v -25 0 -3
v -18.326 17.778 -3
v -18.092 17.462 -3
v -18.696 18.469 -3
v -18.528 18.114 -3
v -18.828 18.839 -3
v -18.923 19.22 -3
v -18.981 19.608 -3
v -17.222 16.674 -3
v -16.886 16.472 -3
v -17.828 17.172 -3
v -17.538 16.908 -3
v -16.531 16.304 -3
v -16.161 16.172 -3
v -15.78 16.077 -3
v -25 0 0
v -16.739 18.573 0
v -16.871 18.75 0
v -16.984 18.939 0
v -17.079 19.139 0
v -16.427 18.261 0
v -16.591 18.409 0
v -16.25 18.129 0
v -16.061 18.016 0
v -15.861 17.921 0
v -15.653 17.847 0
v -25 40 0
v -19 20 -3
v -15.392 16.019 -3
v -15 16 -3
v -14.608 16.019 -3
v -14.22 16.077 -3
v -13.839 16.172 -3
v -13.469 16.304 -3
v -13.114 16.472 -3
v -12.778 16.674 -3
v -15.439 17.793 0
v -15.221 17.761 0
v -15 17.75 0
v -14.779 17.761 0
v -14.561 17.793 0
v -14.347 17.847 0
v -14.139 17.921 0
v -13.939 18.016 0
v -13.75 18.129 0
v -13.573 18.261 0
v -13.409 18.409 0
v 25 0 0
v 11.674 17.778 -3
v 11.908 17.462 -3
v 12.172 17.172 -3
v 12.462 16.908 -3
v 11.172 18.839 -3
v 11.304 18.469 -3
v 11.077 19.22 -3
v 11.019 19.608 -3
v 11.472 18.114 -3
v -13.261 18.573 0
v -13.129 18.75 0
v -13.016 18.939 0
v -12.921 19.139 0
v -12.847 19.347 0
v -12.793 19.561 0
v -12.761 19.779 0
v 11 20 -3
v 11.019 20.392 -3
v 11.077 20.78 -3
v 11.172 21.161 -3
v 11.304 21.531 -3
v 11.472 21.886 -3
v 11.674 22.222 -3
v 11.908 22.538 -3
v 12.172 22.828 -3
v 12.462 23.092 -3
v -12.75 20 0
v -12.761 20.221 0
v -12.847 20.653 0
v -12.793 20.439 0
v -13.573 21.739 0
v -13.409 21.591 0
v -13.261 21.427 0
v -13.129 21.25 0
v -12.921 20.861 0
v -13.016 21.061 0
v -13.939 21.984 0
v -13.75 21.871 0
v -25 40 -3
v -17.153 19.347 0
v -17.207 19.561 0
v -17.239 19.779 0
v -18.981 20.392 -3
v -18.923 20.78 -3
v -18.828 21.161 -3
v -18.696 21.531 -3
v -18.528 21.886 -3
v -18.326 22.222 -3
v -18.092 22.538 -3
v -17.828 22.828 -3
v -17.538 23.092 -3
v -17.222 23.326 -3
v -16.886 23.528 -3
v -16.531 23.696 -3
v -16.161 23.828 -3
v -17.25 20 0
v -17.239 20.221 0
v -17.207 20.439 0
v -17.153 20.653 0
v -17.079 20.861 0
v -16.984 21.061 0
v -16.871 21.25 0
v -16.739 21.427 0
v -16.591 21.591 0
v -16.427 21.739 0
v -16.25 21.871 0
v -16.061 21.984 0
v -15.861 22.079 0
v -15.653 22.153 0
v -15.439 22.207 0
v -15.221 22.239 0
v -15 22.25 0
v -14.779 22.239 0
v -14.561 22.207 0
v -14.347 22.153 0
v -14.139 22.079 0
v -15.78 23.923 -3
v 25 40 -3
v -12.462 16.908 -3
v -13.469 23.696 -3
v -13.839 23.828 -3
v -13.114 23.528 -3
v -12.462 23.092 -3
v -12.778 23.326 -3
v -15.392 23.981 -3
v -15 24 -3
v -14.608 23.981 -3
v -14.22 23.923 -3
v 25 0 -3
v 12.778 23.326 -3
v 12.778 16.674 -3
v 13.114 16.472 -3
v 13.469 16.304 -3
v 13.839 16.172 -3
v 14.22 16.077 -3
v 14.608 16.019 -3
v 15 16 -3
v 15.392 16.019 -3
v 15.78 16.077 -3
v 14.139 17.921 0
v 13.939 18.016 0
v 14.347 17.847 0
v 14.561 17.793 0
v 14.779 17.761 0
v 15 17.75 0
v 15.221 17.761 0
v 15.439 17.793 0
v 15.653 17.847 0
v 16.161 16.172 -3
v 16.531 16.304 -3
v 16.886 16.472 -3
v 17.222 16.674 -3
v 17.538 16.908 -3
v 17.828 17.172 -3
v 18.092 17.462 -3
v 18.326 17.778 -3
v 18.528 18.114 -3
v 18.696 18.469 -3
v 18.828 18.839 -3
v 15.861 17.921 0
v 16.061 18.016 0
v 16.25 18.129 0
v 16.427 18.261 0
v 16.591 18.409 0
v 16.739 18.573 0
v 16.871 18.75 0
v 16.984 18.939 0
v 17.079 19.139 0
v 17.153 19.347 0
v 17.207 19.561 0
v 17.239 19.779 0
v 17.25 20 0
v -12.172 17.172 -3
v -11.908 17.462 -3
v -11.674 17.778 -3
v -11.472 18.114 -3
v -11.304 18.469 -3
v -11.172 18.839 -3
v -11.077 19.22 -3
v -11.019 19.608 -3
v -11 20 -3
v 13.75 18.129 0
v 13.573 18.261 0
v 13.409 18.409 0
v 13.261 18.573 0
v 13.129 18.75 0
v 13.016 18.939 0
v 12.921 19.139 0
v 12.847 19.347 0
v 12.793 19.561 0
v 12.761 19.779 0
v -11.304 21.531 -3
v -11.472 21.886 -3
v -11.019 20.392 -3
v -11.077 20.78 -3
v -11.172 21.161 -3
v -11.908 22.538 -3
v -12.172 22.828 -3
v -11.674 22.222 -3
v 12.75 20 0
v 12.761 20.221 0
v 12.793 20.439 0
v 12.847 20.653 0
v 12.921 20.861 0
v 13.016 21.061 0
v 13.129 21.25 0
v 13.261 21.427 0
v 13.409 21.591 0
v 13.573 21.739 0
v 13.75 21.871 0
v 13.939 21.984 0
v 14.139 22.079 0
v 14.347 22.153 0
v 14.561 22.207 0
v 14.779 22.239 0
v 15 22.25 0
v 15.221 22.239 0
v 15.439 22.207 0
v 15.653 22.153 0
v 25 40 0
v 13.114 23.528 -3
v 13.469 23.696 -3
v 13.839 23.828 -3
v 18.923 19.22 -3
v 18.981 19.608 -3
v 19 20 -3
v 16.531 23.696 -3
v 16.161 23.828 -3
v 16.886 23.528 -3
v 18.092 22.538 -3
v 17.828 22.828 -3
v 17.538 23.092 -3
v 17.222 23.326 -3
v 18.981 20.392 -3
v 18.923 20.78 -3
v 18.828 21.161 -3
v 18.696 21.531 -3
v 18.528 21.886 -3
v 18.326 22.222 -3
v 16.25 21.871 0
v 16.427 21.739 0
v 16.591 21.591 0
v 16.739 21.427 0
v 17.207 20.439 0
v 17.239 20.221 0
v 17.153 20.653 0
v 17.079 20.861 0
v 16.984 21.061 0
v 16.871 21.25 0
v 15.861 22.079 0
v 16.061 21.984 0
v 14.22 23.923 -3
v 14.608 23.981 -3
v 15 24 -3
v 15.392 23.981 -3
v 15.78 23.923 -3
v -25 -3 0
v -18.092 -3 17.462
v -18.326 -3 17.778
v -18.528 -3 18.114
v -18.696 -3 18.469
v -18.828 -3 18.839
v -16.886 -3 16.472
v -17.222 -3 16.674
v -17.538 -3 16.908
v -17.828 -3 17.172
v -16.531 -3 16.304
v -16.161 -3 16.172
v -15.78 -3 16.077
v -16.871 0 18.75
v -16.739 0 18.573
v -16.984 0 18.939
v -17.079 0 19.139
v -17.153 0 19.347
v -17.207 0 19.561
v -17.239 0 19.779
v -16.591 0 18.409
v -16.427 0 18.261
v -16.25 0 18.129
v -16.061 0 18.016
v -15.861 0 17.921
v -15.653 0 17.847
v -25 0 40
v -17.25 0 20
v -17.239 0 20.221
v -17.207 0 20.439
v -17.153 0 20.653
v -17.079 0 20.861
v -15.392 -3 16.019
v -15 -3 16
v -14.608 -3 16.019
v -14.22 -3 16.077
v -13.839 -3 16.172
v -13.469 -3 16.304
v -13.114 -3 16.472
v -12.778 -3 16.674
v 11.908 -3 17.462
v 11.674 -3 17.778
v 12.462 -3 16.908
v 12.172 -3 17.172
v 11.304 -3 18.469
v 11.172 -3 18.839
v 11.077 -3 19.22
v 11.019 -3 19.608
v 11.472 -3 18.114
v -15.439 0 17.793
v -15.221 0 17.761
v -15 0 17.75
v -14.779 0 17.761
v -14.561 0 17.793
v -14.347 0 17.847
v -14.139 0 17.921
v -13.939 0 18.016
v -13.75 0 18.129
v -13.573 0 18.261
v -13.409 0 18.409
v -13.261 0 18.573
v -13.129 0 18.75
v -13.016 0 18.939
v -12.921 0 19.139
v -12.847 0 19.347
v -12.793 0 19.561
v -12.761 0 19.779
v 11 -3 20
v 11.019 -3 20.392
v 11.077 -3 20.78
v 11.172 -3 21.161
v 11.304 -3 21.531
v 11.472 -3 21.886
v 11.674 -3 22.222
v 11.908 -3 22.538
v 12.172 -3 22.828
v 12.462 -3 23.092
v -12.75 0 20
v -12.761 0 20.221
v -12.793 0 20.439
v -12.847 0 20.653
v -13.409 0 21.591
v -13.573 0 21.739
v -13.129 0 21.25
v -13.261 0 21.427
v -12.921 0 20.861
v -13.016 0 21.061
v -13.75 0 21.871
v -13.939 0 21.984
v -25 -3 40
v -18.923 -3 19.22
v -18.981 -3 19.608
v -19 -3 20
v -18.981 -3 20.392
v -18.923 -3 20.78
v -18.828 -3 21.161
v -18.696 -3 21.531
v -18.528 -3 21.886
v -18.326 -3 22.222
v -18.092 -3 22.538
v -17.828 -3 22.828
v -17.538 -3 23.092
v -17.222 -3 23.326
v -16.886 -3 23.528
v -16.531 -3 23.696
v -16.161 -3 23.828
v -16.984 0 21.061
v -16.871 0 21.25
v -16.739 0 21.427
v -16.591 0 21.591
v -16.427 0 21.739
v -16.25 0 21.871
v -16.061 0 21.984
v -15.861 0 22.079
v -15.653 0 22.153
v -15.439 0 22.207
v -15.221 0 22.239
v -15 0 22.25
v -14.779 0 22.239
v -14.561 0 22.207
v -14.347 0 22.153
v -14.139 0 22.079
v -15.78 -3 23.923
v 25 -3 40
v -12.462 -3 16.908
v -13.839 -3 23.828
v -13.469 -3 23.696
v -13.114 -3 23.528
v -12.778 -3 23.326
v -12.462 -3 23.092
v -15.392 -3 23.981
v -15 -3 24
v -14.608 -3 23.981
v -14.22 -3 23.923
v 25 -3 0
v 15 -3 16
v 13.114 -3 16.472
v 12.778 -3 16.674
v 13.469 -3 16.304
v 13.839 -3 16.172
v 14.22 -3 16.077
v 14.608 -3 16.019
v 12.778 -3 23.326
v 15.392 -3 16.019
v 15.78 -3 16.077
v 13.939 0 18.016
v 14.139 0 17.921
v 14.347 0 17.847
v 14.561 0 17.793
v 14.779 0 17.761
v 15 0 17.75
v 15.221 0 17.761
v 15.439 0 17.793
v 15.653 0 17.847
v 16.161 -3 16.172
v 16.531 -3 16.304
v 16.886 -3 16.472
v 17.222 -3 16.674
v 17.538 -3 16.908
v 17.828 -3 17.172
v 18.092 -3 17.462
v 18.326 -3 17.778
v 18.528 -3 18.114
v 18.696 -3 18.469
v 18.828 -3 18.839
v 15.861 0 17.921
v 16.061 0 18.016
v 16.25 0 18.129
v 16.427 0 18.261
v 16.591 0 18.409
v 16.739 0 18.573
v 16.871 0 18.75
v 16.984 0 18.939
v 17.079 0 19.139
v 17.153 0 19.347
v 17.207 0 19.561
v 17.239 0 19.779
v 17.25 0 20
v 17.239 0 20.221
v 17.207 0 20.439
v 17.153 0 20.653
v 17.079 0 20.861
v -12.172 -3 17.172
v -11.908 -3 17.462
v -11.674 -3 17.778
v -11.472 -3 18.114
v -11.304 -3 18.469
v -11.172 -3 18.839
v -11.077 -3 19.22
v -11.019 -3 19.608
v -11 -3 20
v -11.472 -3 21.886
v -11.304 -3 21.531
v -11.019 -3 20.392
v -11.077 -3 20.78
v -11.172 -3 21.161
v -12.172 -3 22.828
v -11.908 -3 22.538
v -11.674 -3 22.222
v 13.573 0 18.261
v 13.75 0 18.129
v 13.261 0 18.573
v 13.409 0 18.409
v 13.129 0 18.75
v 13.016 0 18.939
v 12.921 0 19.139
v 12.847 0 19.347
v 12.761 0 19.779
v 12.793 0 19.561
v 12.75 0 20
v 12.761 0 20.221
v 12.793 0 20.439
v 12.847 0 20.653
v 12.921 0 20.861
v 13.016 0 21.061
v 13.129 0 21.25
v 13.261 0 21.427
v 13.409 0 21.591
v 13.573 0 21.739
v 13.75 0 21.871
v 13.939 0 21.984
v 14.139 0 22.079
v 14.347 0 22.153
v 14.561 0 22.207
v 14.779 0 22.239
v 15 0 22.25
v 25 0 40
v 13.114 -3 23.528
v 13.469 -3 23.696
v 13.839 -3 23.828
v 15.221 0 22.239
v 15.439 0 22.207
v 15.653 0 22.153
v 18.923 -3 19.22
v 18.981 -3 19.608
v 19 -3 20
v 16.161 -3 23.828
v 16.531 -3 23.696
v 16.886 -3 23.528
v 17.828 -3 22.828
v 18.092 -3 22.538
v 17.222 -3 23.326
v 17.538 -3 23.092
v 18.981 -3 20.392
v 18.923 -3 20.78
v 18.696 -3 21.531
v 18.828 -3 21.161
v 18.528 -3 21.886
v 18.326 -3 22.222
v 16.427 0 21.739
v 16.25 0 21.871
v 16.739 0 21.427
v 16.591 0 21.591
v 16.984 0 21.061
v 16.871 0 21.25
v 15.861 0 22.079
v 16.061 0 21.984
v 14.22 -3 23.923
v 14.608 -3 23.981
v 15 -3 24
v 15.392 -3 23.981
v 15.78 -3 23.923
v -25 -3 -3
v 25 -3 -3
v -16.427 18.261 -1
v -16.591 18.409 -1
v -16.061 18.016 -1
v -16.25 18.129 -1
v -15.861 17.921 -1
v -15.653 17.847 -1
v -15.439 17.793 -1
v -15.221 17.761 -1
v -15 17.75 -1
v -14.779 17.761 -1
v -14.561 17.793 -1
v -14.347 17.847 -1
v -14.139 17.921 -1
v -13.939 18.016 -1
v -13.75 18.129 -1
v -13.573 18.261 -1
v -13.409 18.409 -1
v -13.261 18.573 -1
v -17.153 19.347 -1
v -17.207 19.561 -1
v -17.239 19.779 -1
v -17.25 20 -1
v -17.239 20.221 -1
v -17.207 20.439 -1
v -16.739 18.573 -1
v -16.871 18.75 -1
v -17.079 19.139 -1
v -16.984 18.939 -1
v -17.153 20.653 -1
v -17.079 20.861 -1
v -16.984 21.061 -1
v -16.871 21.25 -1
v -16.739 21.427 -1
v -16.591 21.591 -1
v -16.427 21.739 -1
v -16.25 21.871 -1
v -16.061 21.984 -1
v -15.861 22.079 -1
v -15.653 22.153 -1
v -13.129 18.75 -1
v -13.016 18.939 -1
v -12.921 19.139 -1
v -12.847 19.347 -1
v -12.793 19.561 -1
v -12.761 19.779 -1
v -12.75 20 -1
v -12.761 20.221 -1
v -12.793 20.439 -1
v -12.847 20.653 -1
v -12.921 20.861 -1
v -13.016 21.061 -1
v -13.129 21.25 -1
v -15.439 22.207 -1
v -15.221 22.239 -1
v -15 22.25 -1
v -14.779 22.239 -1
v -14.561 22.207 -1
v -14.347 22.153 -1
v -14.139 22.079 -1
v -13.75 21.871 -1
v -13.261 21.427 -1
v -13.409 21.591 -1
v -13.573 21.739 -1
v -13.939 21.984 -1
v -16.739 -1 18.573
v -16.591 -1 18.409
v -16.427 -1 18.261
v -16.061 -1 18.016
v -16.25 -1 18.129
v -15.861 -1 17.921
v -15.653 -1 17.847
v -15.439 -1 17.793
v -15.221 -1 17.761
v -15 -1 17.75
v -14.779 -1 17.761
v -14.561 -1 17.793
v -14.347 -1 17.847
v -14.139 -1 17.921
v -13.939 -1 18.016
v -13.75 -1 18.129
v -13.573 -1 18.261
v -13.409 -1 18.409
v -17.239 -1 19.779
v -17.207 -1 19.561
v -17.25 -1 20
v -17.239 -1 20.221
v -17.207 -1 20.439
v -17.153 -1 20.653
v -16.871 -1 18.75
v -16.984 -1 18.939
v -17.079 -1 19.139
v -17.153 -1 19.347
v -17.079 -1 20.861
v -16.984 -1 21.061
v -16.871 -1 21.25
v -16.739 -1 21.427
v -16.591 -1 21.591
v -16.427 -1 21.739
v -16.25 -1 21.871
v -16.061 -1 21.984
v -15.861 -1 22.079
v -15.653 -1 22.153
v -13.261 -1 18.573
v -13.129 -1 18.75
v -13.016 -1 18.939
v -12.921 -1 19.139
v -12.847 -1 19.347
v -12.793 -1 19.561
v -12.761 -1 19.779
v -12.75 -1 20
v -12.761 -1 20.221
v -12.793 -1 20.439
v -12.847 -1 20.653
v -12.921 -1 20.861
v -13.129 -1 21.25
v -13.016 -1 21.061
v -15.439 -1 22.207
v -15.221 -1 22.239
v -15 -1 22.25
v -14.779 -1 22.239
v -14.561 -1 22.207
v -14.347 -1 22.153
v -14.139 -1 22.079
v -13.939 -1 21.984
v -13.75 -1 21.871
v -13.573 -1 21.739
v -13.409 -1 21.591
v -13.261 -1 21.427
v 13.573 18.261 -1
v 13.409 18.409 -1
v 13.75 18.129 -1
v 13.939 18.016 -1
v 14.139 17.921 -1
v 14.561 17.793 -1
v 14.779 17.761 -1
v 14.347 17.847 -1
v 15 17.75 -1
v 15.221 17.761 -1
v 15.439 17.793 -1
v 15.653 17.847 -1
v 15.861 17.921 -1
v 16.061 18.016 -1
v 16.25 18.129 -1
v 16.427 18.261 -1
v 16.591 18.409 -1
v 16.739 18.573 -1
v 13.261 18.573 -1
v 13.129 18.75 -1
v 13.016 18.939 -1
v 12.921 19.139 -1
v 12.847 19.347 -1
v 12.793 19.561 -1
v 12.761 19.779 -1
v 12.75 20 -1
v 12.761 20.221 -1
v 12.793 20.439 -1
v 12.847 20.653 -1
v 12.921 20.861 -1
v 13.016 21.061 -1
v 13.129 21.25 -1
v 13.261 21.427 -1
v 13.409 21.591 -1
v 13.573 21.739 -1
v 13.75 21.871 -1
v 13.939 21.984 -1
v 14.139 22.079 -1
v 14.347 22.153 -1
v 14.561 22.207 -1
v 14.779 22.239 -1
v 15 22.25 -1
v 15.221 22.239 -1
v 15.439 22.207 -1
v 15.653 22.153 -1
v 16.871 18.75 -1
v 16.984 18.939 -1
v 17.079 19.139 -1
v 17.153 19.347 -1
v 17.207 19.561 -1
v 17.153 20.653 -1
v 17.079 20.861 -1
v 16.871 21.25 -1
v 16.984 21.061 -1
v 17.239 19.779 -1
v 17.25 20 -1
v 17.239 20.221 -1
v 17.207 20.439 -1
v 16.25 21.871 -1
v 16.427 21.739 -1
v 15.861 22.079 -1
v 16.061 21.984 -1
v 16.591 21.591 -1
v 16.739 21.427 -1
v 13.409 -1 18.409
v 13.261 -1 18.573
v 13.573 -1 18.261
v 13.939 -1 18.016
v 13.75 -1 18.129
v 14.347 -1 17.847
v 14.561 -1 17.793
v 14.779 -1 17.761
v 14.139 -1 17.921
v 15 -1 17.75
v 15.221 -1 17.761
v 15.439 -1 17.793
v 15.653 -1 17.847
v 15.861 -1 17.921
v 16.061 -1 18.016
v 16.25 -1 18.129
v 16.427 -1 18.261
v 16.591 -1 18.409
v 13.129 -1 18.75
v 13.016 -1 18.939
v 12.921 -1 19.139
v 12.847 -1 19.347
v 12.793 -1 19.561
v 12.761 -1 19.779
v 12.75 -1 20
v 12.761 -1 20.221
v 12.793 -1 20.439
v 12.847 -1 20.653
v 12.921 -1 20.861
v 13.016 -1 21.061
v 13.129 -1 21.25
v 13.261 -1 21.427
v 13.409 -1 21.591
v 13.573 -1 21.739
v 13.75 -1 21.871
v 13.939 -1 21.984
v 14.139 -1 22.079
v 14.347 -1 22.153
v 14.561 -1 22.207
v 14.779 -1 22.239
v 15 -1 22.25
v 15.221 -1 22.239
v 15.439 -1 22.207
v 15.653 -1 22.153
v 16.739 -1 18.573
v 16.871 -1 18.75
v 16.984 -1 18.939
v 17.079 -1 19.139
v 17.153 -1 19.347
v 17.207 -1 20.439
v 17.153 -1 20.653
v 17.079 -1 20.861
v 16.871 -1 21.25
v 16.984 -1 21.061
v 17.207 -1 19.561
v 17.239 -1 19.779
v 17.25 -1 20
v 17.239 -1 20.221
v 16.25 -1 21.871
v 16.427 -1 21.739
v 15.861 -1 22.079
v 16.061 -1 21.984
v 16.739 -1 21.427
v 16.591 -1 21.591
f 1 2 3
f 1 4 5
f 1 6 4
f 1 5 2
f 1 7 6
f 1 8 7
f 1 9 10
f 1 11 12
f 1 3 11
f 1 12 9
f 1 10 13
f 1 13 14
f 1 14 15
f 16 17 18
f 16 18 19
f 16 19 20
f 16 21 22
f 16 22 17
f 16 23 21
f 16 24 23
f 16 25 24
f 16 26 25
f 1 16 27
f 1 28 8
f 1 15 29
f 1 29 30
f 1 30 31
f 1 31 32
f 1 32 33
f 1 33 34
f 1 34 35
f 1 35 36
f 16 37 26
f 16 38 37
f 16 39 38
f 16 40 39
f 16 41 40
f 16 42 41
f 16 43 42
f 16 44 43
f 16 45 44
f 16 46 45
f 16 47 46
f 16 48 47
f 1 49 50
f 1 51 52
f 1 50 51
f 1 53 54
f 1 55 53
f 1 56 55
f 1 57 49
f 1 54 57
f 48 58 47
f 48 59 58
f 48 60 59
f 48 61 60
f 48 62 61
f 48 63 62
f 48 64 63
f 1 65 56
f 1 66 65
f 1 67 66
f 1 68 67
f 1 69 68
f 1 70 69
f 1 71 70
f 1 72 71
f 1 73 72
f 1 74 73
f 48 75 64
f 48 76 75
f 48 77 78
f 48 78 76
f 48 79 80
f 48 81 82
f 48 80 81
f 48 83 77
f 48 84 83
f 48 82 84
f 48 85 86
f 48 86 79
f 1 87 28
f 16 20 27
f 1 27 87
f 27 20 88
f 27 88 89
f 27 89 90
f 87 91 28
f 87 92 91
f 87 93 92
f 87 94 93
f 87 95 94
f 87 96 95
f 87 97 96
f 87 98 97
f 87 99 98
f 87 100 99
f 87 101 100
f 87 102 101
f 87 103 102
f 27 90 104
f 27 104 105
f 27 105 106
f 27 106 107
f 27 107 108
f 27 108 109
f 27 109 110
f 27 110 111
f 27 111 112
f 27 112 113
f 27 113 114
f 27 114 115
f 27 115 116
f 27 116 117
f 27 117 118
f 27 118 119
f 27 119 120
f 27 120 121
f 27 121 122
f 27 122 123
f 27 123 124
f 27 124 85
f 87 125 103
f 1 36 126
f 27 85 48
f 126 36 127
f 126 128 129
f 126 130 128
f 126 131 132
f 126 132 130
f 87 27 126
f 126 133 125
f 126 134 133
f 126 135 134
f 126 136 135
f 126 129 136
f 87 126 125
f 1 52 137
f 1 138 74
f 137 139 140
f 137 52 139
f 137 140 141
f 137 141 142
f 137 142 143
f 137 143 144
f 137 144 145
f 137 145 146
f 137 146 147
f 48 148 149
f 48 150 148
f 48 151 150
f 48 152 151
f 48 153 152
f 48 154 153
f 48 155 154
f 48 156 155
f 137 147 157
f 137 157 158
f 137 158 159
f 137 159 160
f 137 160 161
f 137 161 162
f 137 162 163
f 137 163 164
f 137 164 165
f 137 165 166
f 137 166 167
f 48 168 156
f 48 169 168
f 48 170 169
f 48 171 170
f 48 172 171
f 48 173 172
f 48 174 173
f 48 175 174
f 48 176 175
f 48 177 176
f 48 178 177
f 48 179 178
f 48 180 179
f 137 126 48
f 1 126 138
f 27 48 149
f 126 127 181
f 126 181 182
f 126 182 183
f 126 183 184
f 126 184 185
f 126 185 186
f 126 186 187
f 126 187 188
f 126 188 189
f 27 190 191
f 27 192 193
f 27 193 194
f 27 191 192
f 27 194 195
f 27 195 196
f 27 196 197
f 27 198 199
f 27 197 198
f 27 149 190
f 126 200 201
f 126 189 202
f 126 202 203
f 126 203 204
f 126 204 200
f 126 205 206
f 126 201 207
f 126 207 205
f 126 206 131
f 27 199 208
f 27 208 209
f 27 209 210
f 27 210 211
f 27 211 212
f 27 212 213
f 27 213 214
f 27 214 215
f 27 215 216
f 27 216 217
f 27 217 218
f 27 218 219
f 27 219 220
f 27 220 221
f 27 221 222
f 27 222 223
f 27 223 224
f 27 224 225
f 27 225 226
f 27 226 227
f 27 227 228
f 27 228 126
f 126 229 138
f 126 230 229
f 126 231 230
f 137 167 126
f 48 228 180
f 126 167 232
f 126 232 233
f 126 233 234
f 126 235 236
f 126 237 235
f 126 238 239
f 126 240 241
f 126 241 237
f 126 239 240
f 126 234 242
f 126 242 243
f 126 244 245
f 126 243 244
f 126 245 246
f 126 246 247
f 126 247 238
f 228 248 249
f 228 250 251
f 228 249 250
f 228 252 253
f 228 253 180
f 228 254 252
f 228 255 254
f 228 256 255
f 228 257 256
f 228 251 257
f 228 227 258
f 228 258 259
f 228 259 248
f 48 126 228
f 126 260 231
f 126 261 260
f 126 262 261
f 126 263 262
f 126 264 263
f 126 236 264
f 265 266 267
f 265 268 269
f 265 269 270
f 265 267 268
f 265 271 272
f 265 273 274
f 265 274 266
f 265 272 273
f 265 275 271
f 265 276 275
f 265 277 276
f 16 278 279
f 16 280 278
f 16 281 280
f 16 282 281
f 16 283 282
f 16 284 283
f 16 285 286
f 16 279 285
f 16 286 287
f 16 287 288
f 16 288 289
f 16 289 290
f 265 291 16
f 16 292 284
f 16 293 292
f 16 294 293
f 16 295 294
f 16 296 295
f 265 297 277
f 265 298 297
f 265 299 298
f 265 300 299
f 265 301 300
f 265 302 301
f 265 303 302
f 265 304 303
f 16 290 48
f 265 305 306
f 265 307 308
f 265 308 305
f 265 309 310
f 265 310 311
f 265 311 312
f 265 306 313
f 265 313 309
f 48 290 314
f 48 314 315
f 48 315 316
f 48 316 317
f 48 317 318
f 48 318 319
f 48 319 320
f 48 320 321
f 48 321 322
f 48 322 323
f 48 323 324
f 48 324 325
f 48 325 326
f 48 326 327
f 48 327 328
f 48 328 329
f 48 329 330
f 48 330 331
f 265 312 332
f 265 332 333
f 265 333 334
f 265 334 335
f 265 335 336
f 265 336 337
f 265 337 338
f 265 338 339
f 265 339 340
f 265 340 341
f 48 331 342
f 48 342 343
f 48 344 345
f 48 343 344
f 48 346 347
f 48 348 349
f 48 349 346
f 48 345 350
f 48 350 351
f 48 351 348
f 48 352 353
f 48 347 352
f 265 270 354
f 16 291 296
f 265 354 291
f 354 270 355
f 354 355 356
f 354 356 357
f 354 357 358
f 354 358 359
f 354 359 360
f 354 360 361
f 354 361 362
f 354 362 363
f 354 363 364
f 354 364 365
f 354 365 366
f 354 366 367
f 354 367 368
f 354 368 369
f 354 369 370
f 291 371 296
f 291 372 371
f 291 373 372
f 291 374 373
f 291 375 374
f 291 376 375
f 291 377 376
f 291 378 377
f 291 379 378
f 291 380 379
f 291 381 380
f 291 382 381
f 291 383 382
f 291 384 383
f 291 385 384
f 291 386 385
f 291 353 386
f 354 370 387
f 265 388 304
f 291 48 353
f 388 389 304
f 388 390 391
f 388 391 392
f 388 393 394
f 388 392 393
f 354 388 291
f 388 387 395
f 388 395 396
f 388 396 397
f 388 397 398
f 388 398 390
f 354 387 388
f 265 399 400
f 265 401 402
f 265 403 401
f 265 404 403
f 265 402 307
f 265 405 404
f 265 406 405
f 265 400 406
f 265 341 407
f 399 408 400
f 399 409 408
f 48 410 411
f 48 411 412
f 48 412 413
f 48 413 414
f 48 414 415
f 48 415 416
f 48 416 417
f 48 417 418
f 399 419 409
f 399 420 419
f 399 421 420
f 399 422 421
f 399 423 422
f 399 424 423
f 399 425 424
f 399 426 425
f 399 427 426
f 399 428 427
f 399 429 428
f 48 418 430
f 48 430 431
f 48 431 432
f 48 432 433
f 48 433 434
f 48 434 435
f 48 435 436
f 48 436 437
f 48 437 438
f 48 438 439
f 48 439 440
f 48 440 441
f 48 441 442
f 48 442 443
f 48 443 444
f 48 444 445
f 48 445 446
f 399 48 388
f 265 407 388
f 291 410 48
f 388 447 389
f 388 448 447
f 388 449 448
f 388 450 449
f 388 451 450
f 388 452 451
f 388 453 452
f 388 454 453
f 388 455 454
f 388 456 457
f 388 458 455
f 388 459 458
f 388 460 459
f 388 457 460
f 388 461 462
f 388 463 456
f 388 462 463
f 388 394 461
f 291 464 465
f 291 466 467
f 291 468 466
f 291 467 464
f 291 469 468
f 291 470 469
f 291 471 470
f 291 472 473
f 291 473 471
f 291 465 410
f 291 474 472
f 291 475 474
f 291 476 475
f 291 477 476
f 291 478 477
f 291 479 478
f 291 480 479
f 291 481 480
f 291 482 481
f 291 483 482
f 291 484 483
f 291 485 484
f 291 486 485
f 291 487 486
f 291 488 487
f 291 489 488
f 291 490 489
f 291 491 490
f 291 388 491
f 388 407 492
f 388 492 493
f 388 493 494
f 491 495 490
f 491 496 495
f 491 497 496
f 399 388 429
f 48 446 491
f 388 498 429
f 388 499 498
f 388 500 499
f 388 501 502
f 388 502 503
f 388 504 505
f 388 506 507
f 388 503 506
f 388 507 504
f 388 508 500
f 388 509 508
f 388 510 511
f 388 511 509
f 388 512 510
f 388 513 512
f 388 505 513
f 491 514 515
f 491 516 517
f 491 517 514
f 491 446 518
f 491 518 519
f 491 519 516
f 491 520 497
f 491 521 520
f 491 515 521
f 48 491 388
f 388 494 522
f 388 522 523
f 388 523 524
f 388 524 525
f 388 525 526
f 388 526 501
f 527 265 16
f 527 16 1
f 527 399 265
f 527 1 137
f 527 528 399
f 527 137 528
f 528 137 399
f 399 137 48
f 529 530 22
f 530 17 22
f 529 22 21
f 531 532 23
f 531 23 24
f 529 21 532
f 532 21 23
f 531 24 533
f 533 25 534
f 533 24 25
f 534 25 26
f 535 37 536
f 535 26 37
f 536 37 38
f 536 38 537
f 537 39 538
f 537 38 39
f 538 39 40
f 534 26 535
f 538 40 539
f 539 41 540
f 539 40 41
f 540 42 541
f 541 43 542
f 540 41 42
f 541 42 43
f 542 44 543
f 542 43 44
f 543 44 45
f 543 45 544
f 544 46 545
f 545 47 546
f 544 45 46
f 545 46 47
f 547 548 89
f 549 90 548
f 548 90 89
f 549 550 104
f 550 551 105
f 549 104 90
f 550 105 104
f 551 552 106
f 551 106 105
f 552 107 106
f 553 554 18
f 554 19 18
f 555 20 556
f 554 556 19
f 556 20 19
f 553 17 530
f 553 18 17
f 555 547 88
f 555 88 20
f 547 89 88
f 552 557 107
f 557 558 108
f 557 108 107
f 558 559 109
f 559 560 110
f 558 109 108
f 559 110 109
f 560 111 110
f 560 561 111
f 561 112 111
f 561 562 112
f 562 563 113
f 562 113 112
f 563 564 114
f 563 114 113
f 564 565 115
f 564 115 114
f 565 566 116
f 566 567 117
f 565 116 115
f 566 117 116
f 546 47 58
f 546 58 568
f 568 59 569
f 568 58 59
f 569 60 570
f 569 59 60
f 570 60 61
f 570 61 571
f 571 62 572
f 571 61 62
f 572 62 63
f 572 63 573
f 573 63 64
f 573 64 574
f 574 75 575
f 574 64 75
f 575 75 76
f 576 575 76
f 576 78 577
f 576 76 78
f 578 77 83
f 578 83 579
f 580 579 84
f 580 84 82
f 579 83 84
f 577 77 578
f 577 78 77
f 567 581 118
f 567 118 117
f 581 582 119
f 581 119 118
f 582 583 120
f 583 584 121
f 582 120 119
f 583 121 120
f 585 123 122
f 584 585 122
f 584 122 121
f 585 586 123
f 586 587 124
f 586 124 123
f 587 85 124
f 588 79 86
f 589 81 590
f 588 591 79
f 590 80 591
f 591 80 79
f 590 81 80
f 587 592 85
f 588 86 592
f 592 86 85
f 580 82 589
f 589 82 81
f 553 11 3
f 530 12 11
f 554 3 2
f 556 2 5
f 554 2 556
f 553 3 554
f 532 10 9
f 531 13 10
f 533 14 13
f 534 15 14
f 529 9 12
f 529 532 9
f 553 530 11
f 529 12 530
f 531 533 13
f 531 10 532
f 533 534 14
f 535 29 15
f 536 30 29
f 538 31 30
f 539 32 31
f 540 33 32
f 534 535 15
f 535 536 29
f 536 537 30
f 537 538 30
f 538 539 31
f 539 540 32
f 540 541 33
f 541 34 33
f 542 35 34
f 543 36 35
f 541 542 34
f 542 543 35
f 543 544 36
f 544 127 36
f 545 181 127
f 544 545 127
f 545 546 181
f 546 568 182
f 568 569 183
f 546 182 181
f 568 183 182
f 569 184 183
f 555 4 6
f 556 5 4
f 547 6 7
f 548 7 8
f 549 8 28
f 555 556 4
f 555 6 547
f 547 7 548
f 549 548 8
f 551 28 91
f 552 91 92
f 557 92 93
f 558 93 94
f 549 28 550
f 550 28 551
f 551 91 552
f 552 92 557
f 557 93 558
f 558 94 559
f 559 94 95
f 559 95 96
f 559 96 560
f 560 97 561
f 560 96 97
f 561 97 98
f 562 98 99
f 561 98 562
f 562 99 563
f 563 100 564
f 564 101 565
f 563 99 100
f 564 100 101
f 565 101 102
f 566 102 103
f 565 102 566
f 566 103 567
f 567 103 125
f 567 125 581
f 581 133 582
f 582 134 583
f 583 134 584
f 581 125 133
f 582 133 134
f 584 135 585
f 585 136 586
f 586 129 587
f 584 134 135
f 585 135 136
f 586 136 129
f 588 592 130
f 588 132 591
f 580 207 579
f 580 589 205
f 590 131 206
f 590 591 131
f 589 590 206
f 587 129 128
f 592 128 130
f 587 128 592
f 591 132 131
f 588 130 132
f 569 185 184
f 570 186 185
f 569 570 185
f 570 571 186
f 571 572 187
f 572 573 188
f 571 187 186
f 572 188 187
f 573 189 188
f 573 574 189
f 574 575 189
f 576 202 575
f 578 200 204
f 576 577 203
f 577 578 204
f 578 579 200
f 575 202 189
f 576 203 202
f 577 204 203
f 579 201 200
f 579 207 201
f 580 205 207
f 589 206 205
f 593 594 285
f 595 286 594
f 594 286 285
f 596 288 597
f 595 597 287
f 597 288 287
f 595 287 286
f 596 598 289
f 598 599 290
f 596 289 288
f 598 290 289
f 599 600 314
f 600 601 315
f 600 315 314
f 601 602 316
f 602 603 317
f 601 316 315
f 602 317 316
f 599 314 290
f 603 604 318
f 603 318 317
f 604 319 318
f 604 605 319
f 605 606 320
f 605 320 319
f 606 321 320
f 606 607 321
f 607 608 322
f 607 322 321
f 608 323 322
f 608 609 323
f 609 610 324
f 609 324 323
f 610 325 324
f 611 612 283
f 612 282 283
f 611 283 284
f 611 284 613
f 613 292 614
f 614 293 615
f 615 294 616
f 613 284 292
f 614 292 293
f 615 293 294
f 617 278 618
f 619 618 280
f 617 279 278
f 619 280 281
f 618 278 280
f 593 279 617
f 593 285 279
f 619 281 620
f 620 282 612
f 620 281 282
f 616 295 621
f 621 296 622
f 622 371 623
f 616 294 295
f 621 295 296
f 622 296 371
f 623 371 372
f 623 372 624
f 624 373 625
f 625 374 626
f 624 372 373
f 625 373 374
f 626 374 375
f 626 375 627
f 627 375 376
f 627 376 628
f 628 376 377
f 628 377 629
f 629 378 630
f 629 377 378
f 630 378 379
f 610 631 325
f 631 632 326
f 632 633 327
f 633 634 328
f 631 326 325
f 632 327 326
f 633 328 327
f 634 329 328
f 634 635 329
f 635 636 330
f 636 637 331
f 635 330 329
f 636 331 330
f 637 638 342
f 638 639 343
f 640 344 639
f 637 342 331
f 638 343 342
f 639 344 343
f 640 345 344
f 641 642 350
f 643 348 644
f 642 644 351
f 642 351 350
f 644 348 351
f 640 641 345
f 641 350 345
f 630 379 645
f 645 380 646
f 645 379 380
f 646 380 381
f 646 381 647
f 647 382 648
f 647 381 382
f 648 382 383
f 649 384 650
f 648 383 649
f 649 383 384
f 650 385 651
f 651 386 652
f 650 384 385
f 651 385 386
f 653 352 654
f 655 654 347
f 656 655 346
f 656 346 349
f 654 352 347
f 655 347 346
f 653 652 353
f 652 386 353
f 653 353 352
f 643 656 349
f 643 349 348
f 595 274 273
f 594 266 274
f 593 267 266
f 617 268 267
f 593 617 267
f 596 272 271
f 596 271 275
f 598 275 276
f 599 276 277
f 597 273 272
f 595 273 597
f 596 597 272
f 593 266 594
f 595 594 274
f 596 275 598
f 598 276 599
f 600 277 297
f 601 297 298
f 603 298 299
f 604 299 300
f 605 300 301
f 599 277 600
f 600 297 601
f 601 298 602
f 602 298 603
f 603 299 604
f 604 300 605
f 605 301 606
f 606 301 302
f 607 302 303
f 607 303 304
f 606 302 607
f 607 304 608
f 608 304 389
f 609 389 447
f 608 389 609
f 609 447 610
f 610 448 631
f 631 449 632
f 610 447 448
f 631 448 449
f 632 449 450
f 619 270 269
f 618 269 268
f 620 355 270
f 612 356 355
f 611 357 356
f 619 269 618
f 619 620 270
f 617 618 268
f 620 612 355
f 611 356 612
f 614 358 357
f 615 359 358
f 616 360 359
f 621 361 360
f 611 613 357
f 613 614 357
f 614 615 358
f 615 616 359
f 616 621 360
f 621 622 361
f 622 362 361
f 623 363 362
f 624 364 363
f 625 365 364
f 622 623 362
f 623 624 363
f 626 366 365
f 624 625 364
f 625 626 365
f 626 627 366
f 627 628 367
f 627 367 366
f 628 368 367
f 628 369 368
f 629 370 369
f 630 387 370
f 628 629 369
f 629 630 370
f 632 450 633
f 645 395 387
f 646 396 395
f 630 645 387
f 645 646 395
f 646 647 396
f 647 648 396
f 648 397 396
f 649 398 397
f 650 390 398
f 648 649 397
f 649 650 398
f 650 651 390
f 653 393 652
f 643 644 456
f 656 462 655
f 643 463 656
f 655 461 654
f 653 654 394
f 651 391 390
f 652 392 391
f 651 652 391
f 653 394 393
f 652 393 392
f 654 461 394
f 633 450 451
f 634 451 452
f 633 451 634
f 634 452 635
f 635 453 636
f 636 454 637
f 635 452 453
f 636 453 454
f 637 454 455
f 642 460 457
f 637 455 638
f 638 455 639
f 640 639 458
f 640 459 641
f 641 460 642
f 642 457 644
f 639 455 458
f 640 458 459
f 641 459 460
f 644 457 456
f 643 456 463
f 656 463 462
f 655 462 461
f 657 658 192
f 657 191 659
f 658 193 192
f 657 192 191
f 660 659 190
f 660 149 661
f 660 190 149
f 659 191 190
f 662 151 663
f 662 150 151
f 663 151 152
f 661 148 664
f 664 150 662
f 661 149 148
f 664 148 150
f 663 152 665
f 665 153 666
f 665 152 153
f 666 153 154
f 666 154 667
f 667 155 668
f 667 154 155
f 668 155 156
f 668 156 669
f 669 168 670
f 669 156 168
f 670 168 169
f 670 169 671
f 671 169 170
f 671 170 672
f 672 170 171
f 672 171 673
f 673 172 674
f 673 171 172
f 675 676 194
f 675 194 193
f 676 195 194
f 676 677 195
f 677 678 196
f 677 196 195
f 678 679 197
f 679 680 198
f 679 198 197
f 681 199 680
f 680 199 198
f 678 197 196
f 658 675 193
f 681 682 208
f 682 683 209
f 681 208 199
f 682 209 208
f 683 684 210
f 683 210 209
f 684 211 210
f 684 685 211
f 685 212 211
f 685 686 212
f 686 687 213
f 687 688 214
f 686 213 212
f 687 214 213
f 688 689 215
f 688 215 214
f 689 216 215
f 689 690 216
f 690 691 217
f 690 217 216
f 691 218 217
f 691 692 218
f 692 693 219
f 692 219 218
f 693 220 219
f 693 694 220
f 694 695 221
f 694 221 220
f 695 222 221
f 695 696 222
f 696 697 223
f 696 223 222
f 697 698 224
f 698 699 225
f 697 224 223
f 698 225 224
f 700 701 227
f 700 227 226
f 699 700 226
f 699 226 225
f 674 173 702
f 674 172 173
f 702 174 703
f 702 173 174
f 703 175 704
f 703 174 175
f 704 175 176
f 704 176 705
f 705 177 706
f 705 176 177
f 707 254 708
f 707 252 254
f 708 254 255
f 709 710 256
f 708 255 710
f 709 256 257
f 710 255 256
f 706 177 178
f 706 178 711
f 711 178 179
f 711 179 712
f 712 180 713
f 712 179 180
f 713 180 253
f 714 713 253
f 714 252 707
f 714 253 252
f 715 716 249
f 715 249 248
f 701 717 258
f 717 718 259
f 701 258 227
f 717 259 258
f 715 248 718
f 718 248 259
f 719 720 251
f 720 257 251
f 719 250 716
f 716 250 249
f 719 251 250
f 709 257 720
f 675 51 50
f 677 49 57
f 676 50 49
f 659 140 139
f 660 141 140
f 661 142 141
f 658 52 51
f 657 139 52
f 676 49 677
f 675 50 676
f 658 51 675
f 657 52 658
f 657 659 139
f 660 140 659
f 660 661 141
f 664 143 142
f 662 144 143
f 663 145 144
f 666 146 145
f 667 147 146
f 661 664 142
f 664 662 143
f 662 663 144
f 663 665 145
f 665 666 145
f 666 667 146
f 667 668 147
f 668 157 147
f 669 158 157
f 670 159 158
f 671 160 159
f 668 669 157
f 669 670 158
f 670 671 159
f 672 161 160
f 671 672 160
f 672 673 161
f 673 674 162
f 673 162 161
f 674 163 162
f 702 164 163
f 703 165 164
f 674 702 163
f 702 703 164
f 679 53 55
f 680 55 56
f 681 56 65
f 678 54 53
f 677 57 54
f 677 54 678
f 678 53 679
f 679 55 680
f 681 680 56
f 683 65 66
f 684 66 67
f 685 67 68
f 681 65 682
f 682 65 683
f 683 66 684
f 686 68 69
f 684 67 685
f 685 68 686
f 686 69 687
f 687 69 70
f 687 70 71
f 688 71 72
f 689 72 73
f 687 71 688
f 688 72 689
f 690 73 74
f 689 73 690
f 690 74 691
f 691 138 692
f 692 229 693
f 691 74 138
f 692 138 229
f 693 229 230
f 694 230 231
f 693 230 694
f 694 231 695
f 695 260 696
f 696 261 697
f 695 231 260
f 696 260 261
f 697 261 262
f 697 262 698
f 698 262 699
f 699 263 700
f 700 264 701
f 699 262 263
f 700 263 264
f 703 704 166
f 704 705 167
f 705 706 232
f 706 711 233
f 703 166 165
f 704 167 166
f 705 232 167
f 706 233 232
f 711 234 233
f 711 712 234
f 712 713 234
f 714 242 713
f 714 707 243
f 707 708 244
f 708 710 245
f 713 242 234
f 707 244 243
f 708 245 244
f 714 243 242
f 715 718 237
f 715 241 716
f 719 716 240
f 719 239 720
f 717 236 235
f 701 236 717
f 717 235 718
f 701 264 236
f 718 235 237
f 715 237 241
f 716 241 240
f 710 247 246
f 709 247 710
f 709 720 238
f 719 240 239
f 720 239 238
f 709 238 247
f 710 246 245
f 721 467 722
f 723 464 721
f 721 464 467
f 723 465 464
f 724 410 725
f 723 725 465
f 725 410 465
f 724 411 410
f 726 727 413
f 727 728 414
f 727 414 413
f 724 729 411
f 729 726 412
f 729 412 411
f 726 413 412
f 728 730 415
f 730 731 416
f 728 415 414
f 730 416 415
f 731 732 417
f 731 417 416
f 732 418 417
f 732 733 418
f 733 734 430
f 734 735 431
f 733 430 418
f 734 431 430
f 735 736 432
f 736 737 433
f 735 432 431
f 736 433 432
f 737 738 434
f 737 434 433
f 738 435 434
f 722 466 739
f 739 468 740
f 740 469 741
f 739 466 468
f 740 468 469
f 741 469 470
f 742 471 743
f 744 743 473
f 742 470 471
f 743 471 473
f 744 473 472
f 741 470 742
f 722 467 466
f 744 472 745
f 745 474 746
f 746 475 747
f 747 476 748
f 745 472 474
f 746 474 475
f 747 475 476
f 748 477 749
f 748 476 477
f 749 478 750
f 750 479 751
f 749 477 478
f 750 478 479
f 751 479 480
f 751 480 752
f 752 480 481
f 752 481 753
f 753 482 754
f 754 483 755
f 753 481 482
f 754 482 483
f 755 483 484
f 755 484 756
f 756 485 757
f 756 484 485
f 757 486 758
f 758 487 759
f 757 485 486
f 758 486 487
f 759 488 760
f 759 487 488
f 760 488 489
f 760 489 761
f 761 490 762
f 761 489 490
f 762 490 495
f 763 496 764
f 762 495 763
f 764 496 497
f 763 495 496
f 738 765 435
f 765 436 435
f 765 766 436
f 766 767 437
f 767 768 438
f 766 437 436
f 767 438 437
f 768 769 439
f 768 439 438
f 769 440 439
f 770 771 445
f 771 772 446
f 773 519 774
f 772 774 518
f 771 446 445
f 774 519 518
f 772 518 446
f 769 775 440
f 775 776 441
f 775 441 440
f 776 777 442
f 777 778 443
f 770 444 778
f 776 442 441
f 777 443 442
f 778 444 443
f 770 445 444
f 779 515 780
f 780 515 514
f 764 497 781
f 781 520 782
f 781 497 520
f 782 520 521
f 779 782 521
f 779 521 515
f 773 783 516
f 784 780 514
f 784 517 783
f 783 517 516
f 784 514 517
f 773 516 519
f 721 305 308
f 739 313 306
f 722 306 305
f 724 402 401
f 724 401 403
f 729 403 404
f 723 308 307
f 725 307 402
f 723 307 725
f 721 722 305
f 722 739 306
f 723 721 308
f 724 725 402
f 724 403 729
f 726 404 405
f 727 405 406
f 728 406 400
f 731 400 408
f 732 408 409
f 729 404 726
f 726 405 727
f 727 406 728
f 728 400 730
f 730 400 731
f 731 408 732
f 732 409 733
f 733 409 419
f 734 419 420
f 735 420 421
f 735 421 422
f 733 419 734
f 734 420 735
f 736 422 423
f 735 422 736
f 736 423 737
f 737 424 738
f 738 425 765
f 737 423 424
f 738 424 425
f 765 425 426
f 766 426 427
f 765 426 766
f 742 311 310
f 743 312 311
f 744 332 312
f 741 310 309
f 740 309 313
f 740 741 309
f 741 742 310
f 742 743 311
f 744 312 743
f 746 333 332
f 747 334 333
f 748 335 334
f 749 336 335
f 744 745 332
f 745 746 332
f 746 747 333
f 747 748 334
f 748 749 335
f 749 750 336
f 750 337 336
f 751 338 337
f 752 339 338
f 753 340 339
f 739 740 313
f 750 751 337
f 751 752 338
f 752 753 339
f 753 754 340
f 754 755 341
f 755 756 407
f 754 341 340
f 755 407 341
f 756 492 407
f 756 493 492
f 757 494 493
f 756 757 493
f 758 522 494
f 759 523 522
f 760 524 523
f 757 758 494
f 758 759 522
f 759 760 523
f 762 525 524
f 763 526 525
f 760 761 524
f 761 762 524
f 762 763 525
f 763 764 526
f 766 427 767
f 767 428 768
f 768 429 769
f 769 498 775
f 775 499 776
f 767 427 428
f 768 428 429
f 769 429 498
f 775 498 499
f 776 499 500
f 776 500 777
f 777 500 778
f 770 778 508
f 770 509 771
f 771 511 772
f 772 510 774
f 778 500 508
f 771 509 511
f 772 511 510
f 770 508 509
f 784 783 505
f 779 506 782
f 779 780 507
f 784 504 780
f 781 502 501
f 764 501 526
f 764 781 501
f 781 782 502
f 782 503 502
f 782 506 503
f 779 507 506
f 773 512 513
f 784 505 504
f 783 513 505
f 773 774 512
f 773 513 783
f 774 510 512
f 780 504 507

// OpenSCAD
$fn = 64;

width = 50;
depth = 40;
vertical_height = 40;
thickness = 3;

through_diameter = 4.5;
countersink_diameter = 8;
countersink_depth = 2;

edge_inset = 10;
eps = 0.01;

module bracket_body() {
    union() {
        translate([-width / 2, 0, -thickness])
            cube([width, depth, thickness]);

        translate([-width / 2, -thickness, 0])
            cube([width, thickness, vertical_height]);

        translate([-width / 2, -thickness, -thickness])
            cube([width, thickness, thickness]);
    }
}

module horizontal_countersunk_hole(px, py) {
    translate([px, py, -thickness - eps])
        cylinder(h = thickness + 2 * eps, d = through_diameter);

    translate([px, py, -thickness])
        cylinder(
            h = countersink_depth,
            d1 = countersink_diameter,
            d2 = through_diameter
        );
}

module vertical_countersunk_hole(px, pz) {
    translate([px, -thickness - eps, pz])
        rotate([-90, 0, 0])
            cylinder(h = thickness + 2 * eps, d = through_diameter);

    translate([px, -thickness, pz])
        rotate([-90, 0, 0])
            cylinder(
                h = countersink_depth,
                d1 = countersink_diameter,
                d2 = through_diameter
            );
}

hole_x = width / 2 - edge_inset;

difference() {
    bracket_body();

    for (x = [-hole_x, hole_x]) {
        horizontal_countersunk_hole(x, depth / 2);
        vertical_countersunk_hole(x, vertical_height / 2);
    }
}
